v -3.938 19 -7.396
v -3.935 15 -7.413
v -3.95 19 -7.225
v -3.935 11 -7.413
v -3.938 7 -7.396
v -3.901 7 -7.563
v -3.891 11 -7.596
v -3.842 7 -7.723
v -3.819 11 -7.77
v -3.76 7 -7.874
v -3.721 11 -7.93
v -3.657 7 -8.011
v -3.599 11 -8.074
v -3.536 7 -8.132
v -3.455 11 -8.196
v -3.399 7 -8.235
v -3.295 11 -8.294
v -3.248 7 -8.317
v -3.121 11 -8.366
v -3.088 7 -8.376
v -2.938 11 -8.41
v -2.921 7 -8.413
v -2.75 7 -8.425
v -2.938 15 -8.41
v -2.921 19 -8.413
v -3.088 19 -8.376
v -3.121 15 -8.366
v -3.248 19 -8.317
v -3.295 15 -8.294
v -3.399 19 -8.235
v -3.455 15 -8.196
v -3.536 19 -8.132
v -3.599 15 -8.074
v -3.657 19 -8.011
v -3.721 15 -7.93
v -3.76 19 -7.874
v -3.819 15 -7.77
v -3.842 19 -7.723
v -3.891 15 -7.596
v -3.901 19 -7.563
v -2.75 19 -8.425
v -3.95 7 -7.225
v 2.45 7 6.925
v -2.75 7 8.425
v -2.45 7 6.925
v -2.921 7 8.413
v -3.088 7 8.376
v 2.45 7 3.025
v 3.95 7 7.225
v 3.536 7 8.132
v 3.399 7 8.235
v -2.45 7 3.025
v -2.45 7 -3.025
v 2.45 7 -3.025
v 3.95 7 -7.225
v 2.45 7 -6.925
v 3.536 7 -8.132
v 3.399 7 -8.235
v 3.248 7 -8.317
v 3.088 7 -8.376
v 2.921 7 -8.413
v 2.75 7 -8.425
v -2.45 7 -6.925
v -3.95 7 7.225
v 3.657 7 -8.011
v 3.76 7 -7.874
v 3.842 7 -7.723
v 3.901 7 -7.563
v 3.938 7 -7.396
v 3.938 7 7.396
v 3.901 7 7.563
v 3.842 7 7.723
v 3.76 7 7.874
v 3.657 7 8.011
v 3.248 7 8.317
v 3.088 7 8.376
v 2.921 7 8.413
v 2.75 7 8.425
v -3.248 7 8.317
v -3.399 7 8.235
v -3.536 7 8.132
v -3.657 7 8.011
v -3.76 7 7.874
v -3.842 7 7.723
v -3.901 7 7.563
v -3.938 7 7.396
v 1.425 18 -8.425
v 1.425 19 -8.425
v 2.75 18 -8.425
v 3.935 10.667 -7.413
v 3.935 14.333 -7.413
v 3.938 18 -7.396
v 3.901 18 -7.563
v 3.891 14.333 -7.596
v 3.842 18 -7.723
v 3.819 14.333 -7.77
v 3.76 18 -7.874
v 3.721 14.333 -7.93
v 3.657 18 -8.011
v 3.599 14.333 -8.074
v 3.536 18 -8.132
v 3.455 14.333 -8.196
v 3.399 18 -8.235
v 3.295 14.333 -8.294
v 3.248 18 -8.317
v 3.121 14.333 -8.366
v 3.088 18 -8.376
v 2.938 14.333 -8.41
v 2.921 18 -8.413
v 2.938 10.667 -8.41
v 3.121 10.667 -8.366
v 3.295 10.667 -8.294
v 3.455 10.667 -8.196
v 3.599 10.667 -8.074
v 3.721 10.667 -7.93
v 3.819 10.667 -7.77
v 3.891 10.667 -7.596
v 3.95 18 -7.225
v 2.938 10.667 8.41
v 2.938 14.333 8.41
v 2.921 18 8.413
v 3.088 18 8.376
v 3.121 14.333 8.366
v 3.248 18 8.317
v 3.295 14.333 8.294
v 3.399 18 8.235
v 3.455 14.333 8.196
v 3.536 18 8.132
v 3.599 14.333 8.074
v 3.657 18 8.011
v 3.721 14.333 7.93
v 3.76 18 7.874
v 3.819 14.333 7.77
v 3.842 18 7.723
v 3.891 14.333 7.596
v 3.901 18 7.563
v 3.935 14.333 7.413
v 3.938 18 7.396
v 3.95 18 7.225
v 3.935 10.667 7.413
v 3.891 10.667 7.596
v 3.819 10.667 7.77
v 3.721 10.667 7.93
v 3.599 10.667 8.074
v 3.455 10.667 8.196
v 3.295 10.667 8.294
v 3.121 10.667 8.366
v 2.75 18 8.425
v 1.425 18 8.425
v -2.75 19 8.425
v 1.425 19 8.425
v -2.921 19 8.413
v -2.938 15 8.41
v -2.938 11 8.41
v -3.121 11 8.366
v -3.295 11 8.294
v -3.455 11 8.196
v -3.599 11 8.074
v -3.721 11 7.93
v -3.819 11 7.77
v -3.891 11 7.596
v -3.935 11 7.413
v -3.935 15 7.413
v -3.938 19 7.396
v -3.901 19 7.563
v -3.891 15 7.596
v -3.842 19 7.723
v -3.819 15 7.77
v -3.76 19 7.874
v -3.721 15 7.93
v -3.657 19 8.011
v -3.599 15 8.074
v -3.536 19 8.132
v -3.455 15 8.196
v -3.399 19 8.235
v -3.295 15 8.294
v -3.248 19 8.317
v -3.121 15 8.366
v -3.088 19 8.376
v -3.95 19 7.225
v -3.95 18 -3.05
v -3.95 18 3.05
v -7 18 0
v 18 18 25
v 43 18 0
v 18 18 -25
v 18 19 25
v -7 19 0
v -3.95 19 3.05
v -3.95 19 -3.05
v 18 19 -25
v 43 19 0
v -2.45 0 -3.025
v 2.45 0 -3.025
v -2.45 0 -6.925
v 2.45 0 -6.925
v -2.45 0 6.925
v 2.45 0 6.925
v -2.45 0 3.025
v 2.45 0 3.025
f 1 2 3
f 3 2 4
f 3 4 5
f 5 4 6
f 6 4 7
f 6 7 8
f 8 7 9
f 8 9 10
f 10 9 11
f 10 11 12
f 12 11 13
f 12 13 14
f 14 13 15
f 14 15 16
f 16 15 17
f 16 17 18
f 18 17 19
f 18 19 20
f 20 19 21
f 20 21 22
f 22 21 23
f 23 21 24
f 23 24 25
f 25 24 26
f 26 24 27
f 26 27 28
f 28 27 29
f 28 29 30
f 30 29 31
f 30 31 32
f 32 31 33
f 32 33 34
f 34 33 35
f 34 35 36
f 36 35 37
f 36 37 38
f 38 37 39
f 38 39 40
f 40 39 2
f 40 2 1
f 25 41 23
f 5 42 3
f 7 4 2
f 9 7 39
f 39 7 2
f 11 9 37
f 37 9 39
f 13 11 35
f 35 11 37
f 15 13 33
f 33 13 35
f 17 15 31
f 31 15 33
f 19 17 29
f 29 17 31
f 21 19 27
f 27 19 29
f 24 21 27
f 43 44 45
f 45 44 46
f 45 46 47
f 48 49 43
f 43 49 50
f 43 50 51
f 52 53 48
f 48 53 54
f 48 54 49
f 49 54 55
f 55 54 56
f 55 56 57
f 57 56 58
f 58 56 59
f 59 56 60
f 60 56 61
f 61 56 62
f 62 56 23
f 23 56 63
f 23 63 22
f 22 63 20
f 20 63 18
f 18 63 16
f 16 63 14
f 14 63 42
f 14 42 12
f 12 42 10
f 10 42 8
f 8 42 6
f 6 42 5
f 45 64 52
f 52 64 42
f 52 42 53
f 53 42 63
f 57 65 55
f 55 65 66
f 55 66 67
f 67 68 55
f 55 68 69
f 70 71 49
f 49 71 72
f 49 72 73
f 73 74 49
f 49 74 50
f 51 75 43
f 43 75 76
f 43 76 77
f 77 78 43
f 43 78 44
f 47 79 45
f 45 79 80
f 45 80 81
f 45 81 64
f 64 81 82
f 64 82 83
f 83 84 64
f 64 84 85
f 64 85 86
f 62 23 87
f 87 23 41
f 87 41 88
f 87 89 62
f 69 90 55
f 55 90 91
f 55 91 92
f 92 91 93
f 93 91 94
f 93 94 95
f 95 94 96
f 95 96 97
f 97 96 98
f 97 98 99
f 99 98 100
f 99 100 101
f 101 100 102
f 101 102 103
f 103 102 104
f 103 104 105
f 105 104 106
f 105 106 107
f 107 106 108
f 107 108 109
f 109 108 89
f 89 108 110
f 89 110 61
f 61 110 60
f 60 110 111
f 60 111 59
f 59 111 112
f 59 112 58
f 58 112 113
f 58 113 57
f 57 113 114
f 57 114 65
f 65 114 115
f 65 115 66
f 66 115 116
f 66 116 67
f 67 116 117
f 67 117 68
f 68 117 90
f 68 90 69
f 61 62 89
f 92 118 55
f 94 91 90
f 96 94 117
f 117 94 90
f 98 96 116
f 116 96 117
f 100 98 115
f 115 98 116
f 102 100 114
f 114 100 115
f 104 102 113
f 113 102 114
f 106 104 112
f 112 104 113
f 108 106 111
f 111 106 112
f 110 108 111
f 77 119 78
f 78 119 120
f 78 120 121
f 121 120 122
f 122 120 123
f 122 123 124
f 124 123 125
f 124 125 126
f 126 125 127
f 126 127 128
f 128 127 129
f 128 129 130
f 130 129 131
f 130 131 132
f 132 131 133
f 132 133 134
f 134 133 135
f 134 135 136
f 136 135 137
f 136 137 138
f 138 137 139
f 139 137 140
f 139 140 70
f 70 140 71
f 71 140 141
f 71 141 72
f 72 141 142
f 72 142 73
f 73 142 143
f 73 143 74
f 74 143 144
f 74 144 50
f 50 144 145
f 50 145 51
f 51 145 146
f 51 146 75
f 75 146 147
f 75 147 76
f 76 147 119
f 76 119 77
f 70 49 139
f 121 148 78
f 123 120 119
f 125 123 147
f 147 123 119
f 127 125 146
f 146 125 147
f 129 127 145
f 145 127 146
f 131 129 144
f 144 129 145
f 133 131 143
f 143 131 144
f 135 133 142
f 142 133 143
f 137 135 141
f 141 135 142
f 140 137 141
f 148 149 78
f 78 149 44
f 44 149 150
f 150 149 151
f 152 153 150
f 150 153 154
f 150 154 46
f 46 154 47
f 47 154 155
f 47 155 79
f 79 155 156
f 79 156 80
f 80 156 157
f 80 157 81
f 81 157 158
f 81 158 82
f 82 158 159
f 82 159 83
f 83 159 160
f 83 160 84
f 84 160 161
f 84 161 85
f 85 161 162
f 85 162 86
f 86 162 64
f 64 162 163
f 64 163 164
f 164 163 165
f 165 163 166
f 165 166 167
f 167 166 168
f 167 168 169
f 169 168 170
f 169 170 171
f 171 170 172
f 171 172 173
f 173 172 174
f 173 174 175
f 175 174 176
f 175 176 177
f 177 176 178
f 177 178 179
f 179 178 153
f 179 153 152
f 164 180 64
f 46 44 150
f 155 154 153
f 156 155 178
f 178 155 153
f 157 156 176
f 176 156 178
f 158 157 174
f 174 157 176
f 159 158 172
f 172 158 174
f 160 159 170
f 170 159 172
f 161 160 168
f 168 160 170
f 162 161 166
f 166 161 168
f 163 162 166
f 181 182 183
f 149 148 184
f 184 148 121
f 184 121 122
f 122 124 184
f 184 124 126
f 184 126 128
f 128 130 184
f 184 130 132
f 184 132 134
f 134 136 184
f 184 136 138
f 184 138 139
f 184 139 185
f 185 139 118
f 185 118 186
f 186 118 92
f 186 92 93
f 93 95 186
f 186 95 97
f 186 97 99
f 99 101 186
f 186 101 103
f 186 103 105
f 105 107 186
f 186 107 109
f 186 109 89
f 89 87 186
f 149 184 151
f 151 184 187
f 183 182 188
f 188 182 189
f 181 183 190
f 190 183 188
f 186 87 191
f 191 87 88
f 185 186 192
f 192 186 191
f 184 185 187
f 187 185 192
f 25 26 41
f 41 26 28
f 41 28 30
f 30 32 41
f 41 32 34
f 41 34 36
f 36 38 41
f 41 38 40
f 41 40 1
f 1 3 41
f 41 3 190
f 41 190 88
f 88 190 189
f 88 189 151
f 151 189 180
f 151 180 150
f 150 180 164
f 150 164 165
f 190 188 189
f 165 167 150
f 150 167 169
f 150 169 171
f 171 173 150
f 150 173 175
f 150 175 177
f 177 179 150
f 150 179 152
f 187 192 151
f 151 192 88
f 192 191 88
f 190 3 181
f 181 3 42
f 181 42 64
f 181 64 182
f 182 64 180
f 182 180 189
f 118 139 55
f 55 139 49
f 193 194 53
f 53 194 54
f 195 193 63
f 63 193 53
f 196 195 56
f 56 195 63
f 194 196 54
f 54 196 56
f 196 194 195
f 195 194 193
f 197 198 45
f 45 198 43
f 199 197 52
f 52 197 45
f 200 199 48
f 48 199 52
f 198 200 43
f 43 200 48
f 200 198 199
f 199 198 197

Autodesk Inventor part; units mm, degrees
ref_plane "YZ Plane" through (0, 0, 0) normal (1, 0, 0) x (0, 1, 0)
ref_plane "XZ Plane" through (0, 0, 0) normal (0, 1, 0) x (-1, 0, 0)
ref_plane "XY Plane" through (0, 0, 0) normal (0, 0, 1) x (1, 0, 0)
sketch "Náčrt1" plane through (0, 0, 0) normal (0, 1, 0) x (-1, 0, 0)
  line L0 (2.45, 6.925) -> (-2.45, 6.925)
  line L1 (-2.45, 6.925) -> (-2.45, 3.025)
  line L2 (-2.45, 3.025) -> (2.45, 3.025)
  line L3 (2.45, 3.025) -> (2.45, 6.925)
  line L4 (2.45, -3.025) -> (-2.45, -3.025)
  line L5 (-2.45, -3.025) -> (-2.45, -6.925)
  line L6 (-2.45, -6.925) -> (2.45, -6.925)
  line L7 (2.45, -6.925) -> (2.45, -3.025)
  point P0 (0, 0)
  dimension "d0" = 6.05
  dimension "d1" = 3.9
  dimension "d2" = 3.9
  dimension "d3" = 4.9
  dimension "d4" = 4.9
  dimension "d5" = 2.45
  dimension "d6" = 3.025
extrude "Vysunutí1" add sketch "Náčrt1" along normal blind 7
sketch "Náčrt2" plane through (0, 7, 0) normal (0, 1, 0) x (1, 0, 0)
  line L0 (-3.95, -8.425) -> (3.95, -8.425)
  line L1 (3.95, -8.425) -> (3.95, 8.425)
  line L2 (3.95, 8.425) -> (-3.95, 8.425)
  line L3 (-3.95, 8.425) -> (-3.95, -8.425)
  line L4 (-2.45, -3.025) -> (-2.45, -6.925) projected
  line L5 (-2.45, -6.925) -> (2.45, -6.925) projected
  line L6 (2.45, 6.925) -> (-2.45, 6.925) projected
  line L7 (2.45, 3.025) -> (2.45, 6.925) projected
  point P0 (0, 0)
  dimension "d9" = 1.5
  dimension "d10" = 1.5
  dimension "d11" = 1.5
  dimension "d12" = 1.5
extrude "Vysunutí2" add sketch "Náčrt2" along normal blind 11
sketch "Náčrt3" plane through (0, 18, 0) normal (0, 1, 0) x (1, 0, 0)
  line L0 (-3.95, -8.425) -> (3.95, -8.425) projected
  line L1 (3.95, -8.425) -> (3.95, 8.425) projected
  line L2 (-3.95, 8.425) -> (-3.95, -8.425) projected
  line L3 (-7, 0) -> (18, 25)
  line L4 (18, 25) -> (43, 0)
  line L5 (43, 0) -> (18, -25)
  line L6 (18, -25) -> (-7, 0)
  line L7 (3.95, 8.425) -> (-3.95, 8.425) projected
  line L8 (3.95, 8.425) -> (-3.95, 8.425)
  point P0 (0, 0)
  point P1 (3.95, -8.0855)
  point P2 (3.95, 8.1088)
  point P3 (1.425, -8.425)
  point P4 (1.425, 8.425)
  point P5 (-3.95, 3.05)
  point P6 (-3.95, -3.05)
  dimension "d22" = 90
  dimension "d24" = 90
  dimension "d25" = 135
  dimension "d30" = 7
  dimension "d32" = 0
  dimension "d33" = 25
  dimension "d34" = 25
  dimension "d35" = 3.95
  dimension "d36" = 3.05
  dimension "d40" = 90
extrude "Vysunutí4" add sketch "Náčrt3" along normal blind 1
fillet "Zaoblení1" radius 1.2 4 edges at (-3.95, 13, 8.425) (3.95, 12.5, 8.425) (3.95, 12.5, -8.425) (-3.95, 13, -8.425)
equation "\"d2\" = d1"
equation "\"d4\" = d3"
equation "\"d5\" = 0.5 * d3"
equation "\"d6\" = 0.5 * d0"
equation "\"d10\" = d9"
equation "\"d11\" = d9"
equation "\"d12\" = d10"
equation "\"d24\" = d22"
properties part number "QRholder-top"
